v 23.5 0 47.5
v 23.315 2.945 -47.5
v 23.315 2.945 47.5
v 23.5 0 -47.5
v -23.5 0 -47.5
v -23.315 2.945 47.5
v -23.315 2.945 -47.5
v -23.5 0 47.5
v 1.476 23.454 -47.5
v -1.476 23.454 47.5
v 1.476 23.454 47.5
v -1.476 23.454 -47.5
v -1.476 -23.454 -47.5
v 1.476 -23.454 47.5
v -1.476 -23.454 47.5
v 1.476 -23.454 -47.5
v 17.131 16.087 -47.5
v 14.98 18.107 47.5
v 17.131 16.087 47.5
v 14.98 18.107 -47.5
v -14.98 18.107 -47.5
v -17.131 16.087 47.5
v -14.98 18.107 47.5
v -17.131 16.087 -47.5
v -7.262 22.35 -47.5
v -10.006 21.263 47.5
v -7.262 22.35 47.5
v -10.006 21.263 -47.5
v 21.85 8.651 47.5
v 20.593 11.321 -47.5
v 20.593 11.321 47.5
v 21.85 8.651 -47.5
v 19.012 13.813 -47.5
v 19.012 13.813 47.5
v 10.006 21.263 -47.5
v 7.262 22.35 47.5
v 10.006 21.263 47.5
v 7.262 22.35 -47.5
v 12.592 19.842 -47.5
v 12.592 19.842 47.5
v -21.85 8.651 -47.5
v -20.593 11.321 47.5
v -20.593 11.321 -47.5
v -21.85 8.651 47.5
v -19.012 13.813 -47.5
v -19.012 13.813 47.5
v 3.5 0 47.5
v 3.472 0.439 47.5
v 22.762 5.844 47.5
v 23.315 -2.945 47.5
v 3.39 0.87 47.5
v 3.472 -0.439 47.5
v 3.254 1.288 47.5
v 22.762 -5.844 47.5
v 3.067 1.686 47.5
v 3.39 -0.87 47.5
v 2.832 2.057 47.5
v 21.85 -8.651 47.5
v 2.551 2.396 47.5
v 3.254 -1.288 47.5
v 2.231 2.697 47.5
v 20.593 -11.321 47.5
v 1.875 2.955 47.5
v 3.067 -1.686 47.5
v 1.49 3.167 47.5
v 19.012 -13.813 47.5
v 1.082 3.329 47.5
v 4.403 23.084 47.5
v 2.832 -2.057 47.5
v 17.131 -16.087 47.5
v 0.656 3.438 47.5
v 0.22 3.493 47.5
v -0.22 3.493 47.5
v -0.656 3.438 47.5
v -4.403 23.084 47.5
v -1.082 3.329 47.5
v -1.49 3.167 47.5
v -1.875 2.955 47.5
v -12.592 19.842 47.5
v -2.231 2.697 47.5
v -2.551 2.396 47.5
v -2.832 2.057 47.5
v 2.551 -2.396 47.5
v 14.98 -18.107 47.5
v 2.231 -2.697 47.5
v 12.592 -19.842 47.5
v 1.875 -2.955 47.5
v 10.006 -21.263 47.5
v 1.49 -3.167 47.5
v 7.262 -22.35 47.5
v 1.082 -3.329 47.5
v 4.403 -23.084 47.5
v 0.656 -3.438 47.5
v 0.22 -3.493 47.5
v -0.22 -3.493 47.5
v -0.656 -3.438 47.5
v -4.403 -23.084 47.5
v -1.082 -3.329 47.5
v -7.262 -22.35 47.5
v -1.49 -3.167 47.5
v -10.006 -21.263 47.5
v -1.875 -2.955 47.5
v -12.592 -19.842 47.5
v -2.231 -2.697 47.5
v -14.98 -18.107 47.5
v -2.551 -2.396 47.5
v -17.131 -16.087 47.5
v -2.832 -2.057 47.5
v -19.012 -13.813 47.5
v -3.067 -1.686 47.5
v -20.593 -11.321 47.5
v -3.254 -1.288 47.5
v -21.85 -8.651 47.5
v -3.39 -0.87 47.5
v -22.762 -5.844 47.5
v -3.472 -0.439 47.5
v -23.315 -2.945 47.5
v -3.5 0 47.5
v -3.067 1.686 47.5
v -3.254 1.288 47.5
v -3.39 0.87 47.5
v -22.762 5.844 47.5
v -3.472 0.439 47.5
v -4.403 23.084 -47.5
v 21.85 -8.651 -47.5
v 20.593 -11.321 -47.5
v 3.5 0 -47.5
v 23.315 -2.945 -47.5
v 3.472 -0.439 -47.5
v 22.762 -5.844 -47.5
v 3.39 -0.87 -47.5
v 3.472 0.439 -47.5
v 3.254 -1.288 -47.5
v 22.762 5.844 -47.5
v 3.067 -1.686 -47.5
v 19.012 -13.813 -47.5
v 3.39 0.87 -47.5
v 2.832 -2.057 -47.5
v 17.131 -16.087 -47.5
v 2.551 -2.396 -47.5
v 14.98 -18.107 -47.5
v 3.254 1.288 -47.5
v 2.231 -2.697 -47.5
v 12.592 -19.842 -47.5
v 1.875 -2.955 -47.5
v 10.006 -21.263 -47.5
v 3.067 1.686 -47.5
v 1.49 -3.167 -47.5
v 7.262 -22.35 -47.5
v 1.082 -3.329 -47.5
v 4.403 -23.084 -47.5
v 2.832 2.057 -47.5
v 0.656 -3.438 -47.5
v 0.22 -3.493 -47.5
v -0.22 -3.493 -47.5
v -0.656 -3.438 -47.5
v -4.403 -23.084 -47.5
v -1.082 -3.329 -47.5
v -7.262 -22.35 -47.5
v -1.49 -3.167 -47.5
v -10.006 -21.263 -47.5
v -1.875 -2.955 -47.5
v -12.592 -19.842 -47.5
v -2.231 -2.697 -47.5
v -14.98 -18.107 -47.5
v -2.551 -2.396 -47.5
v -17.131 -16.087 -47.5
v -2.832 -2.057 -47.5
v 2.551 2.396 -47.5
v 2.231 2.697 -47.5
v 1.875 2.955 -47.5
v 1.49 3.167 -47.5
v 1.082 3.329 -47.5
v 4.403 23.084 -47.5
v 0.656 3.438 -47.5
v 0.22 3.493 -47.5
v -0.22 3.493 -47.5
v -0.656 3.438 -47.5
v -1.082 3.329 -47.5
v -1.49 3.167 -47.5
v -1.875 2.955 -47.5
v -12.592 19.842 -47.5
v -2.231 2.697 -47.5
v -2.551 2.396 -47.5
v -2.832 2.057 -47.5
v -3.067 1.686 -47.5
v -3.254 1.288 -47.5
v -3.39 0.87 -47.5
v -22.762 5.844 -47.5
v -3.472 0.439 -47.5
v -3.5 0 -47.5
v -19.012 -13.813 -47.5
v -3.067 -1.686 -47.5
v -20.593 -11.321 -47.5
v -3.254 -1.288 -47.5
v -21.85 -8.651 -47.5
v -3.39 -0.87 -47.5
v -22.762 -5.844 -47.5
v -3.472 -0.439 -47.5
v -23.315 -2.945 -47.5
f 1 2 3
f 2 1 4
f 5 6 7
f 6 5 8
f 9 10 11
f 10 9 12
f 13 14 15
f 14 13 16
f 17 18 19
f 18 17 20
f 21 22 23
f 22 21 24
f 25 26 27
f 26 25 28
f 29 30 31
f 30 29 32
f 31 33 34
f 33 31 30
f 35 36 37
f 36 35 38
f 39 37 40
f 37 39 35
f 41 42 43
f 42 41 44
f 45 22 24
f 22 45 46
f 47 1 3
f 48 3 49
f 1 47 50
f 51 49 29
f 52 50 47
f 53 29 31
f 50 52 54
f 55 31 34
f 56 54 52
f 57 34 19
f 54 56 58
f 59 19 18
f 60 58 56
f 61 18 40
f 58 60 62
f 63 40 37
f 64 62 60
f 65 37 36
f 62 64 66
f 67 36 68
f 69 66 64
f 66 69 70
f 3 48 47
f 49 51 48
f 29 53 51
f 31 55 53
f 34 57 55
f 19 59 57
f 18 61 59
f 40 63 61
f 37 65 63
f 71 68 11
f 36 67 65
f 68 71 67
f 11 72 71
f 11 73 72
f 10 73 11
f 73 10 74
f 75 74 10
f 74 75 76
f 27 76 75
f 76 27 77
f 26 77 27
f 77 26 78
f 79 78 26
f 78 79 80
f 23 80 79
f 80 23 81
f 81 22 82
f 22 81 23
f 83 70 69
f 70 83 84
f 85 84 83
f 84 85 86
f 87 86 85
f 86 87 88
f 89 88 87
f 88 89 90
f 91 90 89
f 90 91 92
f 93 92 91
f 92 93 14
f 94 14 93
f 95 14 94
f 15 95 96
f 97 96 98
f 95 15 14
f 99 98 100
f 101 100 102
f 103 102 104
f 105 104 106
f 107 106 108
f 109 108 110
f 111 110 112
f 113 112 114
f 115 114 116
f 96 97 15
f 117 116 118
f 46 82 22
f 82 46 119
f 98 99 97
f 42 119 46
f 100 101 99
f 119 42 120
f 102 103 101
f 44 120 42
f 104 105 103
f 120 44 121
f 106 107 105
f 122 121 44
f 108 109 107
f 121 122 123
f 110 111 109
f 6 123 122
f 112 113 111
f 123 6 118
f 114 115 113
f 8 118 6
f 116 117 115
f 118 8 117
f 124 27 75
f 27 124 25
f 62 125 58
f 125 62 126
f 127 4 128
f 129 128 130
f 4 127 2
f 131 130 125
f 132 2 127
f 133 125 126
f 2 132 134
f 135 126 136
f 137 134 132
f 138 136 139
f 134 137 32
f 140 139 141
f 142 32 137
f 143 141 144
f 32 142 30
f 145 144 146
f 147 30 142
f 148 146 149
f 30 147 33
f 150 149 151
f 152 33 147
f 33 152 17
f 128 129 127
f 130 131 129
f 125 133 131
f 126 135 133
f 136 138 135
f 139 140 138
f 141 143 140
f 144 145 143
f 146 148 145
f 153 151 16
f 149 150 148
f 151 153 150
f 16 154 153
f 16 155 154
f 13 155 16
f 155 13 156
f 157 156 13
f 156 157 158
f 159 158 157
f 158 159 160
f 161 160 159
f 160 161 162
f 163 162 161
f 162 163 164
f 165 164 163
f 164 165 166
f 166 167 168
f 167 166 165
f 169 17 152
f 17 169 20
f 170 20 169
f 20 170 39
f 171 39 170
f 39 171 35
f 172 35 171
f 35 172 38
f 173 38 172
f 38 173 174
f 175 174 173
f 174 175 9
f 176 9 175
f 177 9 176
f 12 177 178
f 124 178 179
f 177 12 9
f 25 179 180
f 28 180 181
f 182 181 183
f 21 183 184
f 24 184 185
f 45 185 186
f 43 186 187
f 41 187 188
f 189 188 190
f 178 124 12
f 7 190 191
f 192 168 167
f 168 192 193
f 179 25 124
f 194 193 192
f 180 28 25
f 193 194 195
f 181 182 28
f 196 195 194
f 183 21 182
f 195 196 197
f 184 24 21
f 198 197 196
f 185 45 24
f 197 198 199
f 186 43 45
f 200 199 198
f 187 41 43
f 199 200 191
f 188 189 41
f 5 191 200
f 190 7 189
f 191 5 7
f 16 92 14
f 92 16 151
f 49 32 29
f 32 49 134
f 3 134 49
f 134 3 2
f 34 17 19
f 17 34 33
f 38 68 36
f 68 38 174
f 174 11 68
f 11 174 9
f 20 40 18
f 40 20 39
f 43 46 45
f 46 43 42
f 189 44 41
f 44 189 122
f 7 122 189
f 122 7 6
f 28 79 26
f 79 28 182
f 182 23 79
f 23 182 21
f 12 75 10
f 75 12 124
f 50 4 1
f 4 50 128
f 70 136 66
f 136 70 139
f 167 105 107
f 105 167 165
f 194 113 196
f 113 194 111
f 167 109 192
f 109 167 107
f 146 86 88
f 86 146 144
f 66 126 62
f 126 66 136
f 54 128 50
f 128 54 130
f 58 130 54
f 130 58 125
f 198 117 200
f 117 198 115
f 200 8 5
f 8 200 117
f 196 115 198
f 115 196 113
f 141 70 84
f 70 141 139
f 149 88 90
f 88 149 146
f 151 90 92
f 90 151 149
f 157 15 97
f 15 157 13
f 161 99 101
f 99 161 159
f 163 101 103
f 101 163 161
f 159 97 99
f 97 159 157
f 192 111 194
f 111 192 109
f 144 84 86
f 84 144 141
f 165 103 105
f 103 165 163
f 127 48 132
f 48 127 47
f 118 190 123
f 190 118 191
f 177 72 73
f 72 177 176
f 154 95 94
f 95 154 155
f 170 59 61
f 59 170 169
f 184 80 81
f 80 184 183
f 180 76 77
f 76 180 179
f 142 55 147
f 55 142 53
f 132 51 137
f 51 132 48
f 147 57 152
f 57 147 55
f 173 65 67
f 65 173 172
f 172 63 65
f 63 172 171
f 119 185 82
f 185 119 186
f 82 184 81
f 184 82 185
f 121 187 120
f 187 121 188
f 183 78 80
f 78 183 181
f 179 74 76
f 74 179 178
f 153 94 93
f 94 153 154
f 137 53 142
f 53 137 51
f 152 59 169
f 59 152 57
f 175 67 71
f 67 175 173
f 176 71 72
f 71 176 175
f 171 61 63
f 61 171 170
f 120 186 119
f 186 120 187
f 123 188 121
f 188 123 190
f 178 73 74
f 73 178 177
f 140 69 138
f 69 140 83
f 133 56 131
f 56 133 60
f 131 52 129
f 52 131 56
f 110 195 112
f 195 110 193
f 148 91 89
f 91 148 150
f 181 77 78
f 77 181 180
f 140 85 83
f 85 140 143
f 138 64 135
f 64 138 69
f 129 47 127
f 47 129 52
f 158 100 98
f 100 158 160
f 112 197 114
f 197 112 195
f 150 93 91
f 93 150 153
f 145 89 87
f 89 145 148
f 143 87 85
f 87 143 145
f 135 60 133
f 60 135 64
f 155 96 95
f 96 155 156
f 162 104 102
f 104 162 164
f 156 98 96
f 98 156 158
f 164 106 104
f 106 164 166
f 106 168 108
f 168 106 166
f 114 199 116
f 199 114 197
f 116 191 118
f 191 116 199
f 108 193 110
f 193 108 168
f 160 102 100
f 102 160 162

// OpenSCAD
$fn = 50;


difference() {
	union() {
		translate(v = [0, 0, -47.5000000000]) {
			cylinder(h = 95, r = 23.5000000000);
		}
	}
	union() {
		translate(v = [0, 0, -100.0000000000]) {
			cylinder(h = 200, r = 3.5000000000);
		}
	}
}
